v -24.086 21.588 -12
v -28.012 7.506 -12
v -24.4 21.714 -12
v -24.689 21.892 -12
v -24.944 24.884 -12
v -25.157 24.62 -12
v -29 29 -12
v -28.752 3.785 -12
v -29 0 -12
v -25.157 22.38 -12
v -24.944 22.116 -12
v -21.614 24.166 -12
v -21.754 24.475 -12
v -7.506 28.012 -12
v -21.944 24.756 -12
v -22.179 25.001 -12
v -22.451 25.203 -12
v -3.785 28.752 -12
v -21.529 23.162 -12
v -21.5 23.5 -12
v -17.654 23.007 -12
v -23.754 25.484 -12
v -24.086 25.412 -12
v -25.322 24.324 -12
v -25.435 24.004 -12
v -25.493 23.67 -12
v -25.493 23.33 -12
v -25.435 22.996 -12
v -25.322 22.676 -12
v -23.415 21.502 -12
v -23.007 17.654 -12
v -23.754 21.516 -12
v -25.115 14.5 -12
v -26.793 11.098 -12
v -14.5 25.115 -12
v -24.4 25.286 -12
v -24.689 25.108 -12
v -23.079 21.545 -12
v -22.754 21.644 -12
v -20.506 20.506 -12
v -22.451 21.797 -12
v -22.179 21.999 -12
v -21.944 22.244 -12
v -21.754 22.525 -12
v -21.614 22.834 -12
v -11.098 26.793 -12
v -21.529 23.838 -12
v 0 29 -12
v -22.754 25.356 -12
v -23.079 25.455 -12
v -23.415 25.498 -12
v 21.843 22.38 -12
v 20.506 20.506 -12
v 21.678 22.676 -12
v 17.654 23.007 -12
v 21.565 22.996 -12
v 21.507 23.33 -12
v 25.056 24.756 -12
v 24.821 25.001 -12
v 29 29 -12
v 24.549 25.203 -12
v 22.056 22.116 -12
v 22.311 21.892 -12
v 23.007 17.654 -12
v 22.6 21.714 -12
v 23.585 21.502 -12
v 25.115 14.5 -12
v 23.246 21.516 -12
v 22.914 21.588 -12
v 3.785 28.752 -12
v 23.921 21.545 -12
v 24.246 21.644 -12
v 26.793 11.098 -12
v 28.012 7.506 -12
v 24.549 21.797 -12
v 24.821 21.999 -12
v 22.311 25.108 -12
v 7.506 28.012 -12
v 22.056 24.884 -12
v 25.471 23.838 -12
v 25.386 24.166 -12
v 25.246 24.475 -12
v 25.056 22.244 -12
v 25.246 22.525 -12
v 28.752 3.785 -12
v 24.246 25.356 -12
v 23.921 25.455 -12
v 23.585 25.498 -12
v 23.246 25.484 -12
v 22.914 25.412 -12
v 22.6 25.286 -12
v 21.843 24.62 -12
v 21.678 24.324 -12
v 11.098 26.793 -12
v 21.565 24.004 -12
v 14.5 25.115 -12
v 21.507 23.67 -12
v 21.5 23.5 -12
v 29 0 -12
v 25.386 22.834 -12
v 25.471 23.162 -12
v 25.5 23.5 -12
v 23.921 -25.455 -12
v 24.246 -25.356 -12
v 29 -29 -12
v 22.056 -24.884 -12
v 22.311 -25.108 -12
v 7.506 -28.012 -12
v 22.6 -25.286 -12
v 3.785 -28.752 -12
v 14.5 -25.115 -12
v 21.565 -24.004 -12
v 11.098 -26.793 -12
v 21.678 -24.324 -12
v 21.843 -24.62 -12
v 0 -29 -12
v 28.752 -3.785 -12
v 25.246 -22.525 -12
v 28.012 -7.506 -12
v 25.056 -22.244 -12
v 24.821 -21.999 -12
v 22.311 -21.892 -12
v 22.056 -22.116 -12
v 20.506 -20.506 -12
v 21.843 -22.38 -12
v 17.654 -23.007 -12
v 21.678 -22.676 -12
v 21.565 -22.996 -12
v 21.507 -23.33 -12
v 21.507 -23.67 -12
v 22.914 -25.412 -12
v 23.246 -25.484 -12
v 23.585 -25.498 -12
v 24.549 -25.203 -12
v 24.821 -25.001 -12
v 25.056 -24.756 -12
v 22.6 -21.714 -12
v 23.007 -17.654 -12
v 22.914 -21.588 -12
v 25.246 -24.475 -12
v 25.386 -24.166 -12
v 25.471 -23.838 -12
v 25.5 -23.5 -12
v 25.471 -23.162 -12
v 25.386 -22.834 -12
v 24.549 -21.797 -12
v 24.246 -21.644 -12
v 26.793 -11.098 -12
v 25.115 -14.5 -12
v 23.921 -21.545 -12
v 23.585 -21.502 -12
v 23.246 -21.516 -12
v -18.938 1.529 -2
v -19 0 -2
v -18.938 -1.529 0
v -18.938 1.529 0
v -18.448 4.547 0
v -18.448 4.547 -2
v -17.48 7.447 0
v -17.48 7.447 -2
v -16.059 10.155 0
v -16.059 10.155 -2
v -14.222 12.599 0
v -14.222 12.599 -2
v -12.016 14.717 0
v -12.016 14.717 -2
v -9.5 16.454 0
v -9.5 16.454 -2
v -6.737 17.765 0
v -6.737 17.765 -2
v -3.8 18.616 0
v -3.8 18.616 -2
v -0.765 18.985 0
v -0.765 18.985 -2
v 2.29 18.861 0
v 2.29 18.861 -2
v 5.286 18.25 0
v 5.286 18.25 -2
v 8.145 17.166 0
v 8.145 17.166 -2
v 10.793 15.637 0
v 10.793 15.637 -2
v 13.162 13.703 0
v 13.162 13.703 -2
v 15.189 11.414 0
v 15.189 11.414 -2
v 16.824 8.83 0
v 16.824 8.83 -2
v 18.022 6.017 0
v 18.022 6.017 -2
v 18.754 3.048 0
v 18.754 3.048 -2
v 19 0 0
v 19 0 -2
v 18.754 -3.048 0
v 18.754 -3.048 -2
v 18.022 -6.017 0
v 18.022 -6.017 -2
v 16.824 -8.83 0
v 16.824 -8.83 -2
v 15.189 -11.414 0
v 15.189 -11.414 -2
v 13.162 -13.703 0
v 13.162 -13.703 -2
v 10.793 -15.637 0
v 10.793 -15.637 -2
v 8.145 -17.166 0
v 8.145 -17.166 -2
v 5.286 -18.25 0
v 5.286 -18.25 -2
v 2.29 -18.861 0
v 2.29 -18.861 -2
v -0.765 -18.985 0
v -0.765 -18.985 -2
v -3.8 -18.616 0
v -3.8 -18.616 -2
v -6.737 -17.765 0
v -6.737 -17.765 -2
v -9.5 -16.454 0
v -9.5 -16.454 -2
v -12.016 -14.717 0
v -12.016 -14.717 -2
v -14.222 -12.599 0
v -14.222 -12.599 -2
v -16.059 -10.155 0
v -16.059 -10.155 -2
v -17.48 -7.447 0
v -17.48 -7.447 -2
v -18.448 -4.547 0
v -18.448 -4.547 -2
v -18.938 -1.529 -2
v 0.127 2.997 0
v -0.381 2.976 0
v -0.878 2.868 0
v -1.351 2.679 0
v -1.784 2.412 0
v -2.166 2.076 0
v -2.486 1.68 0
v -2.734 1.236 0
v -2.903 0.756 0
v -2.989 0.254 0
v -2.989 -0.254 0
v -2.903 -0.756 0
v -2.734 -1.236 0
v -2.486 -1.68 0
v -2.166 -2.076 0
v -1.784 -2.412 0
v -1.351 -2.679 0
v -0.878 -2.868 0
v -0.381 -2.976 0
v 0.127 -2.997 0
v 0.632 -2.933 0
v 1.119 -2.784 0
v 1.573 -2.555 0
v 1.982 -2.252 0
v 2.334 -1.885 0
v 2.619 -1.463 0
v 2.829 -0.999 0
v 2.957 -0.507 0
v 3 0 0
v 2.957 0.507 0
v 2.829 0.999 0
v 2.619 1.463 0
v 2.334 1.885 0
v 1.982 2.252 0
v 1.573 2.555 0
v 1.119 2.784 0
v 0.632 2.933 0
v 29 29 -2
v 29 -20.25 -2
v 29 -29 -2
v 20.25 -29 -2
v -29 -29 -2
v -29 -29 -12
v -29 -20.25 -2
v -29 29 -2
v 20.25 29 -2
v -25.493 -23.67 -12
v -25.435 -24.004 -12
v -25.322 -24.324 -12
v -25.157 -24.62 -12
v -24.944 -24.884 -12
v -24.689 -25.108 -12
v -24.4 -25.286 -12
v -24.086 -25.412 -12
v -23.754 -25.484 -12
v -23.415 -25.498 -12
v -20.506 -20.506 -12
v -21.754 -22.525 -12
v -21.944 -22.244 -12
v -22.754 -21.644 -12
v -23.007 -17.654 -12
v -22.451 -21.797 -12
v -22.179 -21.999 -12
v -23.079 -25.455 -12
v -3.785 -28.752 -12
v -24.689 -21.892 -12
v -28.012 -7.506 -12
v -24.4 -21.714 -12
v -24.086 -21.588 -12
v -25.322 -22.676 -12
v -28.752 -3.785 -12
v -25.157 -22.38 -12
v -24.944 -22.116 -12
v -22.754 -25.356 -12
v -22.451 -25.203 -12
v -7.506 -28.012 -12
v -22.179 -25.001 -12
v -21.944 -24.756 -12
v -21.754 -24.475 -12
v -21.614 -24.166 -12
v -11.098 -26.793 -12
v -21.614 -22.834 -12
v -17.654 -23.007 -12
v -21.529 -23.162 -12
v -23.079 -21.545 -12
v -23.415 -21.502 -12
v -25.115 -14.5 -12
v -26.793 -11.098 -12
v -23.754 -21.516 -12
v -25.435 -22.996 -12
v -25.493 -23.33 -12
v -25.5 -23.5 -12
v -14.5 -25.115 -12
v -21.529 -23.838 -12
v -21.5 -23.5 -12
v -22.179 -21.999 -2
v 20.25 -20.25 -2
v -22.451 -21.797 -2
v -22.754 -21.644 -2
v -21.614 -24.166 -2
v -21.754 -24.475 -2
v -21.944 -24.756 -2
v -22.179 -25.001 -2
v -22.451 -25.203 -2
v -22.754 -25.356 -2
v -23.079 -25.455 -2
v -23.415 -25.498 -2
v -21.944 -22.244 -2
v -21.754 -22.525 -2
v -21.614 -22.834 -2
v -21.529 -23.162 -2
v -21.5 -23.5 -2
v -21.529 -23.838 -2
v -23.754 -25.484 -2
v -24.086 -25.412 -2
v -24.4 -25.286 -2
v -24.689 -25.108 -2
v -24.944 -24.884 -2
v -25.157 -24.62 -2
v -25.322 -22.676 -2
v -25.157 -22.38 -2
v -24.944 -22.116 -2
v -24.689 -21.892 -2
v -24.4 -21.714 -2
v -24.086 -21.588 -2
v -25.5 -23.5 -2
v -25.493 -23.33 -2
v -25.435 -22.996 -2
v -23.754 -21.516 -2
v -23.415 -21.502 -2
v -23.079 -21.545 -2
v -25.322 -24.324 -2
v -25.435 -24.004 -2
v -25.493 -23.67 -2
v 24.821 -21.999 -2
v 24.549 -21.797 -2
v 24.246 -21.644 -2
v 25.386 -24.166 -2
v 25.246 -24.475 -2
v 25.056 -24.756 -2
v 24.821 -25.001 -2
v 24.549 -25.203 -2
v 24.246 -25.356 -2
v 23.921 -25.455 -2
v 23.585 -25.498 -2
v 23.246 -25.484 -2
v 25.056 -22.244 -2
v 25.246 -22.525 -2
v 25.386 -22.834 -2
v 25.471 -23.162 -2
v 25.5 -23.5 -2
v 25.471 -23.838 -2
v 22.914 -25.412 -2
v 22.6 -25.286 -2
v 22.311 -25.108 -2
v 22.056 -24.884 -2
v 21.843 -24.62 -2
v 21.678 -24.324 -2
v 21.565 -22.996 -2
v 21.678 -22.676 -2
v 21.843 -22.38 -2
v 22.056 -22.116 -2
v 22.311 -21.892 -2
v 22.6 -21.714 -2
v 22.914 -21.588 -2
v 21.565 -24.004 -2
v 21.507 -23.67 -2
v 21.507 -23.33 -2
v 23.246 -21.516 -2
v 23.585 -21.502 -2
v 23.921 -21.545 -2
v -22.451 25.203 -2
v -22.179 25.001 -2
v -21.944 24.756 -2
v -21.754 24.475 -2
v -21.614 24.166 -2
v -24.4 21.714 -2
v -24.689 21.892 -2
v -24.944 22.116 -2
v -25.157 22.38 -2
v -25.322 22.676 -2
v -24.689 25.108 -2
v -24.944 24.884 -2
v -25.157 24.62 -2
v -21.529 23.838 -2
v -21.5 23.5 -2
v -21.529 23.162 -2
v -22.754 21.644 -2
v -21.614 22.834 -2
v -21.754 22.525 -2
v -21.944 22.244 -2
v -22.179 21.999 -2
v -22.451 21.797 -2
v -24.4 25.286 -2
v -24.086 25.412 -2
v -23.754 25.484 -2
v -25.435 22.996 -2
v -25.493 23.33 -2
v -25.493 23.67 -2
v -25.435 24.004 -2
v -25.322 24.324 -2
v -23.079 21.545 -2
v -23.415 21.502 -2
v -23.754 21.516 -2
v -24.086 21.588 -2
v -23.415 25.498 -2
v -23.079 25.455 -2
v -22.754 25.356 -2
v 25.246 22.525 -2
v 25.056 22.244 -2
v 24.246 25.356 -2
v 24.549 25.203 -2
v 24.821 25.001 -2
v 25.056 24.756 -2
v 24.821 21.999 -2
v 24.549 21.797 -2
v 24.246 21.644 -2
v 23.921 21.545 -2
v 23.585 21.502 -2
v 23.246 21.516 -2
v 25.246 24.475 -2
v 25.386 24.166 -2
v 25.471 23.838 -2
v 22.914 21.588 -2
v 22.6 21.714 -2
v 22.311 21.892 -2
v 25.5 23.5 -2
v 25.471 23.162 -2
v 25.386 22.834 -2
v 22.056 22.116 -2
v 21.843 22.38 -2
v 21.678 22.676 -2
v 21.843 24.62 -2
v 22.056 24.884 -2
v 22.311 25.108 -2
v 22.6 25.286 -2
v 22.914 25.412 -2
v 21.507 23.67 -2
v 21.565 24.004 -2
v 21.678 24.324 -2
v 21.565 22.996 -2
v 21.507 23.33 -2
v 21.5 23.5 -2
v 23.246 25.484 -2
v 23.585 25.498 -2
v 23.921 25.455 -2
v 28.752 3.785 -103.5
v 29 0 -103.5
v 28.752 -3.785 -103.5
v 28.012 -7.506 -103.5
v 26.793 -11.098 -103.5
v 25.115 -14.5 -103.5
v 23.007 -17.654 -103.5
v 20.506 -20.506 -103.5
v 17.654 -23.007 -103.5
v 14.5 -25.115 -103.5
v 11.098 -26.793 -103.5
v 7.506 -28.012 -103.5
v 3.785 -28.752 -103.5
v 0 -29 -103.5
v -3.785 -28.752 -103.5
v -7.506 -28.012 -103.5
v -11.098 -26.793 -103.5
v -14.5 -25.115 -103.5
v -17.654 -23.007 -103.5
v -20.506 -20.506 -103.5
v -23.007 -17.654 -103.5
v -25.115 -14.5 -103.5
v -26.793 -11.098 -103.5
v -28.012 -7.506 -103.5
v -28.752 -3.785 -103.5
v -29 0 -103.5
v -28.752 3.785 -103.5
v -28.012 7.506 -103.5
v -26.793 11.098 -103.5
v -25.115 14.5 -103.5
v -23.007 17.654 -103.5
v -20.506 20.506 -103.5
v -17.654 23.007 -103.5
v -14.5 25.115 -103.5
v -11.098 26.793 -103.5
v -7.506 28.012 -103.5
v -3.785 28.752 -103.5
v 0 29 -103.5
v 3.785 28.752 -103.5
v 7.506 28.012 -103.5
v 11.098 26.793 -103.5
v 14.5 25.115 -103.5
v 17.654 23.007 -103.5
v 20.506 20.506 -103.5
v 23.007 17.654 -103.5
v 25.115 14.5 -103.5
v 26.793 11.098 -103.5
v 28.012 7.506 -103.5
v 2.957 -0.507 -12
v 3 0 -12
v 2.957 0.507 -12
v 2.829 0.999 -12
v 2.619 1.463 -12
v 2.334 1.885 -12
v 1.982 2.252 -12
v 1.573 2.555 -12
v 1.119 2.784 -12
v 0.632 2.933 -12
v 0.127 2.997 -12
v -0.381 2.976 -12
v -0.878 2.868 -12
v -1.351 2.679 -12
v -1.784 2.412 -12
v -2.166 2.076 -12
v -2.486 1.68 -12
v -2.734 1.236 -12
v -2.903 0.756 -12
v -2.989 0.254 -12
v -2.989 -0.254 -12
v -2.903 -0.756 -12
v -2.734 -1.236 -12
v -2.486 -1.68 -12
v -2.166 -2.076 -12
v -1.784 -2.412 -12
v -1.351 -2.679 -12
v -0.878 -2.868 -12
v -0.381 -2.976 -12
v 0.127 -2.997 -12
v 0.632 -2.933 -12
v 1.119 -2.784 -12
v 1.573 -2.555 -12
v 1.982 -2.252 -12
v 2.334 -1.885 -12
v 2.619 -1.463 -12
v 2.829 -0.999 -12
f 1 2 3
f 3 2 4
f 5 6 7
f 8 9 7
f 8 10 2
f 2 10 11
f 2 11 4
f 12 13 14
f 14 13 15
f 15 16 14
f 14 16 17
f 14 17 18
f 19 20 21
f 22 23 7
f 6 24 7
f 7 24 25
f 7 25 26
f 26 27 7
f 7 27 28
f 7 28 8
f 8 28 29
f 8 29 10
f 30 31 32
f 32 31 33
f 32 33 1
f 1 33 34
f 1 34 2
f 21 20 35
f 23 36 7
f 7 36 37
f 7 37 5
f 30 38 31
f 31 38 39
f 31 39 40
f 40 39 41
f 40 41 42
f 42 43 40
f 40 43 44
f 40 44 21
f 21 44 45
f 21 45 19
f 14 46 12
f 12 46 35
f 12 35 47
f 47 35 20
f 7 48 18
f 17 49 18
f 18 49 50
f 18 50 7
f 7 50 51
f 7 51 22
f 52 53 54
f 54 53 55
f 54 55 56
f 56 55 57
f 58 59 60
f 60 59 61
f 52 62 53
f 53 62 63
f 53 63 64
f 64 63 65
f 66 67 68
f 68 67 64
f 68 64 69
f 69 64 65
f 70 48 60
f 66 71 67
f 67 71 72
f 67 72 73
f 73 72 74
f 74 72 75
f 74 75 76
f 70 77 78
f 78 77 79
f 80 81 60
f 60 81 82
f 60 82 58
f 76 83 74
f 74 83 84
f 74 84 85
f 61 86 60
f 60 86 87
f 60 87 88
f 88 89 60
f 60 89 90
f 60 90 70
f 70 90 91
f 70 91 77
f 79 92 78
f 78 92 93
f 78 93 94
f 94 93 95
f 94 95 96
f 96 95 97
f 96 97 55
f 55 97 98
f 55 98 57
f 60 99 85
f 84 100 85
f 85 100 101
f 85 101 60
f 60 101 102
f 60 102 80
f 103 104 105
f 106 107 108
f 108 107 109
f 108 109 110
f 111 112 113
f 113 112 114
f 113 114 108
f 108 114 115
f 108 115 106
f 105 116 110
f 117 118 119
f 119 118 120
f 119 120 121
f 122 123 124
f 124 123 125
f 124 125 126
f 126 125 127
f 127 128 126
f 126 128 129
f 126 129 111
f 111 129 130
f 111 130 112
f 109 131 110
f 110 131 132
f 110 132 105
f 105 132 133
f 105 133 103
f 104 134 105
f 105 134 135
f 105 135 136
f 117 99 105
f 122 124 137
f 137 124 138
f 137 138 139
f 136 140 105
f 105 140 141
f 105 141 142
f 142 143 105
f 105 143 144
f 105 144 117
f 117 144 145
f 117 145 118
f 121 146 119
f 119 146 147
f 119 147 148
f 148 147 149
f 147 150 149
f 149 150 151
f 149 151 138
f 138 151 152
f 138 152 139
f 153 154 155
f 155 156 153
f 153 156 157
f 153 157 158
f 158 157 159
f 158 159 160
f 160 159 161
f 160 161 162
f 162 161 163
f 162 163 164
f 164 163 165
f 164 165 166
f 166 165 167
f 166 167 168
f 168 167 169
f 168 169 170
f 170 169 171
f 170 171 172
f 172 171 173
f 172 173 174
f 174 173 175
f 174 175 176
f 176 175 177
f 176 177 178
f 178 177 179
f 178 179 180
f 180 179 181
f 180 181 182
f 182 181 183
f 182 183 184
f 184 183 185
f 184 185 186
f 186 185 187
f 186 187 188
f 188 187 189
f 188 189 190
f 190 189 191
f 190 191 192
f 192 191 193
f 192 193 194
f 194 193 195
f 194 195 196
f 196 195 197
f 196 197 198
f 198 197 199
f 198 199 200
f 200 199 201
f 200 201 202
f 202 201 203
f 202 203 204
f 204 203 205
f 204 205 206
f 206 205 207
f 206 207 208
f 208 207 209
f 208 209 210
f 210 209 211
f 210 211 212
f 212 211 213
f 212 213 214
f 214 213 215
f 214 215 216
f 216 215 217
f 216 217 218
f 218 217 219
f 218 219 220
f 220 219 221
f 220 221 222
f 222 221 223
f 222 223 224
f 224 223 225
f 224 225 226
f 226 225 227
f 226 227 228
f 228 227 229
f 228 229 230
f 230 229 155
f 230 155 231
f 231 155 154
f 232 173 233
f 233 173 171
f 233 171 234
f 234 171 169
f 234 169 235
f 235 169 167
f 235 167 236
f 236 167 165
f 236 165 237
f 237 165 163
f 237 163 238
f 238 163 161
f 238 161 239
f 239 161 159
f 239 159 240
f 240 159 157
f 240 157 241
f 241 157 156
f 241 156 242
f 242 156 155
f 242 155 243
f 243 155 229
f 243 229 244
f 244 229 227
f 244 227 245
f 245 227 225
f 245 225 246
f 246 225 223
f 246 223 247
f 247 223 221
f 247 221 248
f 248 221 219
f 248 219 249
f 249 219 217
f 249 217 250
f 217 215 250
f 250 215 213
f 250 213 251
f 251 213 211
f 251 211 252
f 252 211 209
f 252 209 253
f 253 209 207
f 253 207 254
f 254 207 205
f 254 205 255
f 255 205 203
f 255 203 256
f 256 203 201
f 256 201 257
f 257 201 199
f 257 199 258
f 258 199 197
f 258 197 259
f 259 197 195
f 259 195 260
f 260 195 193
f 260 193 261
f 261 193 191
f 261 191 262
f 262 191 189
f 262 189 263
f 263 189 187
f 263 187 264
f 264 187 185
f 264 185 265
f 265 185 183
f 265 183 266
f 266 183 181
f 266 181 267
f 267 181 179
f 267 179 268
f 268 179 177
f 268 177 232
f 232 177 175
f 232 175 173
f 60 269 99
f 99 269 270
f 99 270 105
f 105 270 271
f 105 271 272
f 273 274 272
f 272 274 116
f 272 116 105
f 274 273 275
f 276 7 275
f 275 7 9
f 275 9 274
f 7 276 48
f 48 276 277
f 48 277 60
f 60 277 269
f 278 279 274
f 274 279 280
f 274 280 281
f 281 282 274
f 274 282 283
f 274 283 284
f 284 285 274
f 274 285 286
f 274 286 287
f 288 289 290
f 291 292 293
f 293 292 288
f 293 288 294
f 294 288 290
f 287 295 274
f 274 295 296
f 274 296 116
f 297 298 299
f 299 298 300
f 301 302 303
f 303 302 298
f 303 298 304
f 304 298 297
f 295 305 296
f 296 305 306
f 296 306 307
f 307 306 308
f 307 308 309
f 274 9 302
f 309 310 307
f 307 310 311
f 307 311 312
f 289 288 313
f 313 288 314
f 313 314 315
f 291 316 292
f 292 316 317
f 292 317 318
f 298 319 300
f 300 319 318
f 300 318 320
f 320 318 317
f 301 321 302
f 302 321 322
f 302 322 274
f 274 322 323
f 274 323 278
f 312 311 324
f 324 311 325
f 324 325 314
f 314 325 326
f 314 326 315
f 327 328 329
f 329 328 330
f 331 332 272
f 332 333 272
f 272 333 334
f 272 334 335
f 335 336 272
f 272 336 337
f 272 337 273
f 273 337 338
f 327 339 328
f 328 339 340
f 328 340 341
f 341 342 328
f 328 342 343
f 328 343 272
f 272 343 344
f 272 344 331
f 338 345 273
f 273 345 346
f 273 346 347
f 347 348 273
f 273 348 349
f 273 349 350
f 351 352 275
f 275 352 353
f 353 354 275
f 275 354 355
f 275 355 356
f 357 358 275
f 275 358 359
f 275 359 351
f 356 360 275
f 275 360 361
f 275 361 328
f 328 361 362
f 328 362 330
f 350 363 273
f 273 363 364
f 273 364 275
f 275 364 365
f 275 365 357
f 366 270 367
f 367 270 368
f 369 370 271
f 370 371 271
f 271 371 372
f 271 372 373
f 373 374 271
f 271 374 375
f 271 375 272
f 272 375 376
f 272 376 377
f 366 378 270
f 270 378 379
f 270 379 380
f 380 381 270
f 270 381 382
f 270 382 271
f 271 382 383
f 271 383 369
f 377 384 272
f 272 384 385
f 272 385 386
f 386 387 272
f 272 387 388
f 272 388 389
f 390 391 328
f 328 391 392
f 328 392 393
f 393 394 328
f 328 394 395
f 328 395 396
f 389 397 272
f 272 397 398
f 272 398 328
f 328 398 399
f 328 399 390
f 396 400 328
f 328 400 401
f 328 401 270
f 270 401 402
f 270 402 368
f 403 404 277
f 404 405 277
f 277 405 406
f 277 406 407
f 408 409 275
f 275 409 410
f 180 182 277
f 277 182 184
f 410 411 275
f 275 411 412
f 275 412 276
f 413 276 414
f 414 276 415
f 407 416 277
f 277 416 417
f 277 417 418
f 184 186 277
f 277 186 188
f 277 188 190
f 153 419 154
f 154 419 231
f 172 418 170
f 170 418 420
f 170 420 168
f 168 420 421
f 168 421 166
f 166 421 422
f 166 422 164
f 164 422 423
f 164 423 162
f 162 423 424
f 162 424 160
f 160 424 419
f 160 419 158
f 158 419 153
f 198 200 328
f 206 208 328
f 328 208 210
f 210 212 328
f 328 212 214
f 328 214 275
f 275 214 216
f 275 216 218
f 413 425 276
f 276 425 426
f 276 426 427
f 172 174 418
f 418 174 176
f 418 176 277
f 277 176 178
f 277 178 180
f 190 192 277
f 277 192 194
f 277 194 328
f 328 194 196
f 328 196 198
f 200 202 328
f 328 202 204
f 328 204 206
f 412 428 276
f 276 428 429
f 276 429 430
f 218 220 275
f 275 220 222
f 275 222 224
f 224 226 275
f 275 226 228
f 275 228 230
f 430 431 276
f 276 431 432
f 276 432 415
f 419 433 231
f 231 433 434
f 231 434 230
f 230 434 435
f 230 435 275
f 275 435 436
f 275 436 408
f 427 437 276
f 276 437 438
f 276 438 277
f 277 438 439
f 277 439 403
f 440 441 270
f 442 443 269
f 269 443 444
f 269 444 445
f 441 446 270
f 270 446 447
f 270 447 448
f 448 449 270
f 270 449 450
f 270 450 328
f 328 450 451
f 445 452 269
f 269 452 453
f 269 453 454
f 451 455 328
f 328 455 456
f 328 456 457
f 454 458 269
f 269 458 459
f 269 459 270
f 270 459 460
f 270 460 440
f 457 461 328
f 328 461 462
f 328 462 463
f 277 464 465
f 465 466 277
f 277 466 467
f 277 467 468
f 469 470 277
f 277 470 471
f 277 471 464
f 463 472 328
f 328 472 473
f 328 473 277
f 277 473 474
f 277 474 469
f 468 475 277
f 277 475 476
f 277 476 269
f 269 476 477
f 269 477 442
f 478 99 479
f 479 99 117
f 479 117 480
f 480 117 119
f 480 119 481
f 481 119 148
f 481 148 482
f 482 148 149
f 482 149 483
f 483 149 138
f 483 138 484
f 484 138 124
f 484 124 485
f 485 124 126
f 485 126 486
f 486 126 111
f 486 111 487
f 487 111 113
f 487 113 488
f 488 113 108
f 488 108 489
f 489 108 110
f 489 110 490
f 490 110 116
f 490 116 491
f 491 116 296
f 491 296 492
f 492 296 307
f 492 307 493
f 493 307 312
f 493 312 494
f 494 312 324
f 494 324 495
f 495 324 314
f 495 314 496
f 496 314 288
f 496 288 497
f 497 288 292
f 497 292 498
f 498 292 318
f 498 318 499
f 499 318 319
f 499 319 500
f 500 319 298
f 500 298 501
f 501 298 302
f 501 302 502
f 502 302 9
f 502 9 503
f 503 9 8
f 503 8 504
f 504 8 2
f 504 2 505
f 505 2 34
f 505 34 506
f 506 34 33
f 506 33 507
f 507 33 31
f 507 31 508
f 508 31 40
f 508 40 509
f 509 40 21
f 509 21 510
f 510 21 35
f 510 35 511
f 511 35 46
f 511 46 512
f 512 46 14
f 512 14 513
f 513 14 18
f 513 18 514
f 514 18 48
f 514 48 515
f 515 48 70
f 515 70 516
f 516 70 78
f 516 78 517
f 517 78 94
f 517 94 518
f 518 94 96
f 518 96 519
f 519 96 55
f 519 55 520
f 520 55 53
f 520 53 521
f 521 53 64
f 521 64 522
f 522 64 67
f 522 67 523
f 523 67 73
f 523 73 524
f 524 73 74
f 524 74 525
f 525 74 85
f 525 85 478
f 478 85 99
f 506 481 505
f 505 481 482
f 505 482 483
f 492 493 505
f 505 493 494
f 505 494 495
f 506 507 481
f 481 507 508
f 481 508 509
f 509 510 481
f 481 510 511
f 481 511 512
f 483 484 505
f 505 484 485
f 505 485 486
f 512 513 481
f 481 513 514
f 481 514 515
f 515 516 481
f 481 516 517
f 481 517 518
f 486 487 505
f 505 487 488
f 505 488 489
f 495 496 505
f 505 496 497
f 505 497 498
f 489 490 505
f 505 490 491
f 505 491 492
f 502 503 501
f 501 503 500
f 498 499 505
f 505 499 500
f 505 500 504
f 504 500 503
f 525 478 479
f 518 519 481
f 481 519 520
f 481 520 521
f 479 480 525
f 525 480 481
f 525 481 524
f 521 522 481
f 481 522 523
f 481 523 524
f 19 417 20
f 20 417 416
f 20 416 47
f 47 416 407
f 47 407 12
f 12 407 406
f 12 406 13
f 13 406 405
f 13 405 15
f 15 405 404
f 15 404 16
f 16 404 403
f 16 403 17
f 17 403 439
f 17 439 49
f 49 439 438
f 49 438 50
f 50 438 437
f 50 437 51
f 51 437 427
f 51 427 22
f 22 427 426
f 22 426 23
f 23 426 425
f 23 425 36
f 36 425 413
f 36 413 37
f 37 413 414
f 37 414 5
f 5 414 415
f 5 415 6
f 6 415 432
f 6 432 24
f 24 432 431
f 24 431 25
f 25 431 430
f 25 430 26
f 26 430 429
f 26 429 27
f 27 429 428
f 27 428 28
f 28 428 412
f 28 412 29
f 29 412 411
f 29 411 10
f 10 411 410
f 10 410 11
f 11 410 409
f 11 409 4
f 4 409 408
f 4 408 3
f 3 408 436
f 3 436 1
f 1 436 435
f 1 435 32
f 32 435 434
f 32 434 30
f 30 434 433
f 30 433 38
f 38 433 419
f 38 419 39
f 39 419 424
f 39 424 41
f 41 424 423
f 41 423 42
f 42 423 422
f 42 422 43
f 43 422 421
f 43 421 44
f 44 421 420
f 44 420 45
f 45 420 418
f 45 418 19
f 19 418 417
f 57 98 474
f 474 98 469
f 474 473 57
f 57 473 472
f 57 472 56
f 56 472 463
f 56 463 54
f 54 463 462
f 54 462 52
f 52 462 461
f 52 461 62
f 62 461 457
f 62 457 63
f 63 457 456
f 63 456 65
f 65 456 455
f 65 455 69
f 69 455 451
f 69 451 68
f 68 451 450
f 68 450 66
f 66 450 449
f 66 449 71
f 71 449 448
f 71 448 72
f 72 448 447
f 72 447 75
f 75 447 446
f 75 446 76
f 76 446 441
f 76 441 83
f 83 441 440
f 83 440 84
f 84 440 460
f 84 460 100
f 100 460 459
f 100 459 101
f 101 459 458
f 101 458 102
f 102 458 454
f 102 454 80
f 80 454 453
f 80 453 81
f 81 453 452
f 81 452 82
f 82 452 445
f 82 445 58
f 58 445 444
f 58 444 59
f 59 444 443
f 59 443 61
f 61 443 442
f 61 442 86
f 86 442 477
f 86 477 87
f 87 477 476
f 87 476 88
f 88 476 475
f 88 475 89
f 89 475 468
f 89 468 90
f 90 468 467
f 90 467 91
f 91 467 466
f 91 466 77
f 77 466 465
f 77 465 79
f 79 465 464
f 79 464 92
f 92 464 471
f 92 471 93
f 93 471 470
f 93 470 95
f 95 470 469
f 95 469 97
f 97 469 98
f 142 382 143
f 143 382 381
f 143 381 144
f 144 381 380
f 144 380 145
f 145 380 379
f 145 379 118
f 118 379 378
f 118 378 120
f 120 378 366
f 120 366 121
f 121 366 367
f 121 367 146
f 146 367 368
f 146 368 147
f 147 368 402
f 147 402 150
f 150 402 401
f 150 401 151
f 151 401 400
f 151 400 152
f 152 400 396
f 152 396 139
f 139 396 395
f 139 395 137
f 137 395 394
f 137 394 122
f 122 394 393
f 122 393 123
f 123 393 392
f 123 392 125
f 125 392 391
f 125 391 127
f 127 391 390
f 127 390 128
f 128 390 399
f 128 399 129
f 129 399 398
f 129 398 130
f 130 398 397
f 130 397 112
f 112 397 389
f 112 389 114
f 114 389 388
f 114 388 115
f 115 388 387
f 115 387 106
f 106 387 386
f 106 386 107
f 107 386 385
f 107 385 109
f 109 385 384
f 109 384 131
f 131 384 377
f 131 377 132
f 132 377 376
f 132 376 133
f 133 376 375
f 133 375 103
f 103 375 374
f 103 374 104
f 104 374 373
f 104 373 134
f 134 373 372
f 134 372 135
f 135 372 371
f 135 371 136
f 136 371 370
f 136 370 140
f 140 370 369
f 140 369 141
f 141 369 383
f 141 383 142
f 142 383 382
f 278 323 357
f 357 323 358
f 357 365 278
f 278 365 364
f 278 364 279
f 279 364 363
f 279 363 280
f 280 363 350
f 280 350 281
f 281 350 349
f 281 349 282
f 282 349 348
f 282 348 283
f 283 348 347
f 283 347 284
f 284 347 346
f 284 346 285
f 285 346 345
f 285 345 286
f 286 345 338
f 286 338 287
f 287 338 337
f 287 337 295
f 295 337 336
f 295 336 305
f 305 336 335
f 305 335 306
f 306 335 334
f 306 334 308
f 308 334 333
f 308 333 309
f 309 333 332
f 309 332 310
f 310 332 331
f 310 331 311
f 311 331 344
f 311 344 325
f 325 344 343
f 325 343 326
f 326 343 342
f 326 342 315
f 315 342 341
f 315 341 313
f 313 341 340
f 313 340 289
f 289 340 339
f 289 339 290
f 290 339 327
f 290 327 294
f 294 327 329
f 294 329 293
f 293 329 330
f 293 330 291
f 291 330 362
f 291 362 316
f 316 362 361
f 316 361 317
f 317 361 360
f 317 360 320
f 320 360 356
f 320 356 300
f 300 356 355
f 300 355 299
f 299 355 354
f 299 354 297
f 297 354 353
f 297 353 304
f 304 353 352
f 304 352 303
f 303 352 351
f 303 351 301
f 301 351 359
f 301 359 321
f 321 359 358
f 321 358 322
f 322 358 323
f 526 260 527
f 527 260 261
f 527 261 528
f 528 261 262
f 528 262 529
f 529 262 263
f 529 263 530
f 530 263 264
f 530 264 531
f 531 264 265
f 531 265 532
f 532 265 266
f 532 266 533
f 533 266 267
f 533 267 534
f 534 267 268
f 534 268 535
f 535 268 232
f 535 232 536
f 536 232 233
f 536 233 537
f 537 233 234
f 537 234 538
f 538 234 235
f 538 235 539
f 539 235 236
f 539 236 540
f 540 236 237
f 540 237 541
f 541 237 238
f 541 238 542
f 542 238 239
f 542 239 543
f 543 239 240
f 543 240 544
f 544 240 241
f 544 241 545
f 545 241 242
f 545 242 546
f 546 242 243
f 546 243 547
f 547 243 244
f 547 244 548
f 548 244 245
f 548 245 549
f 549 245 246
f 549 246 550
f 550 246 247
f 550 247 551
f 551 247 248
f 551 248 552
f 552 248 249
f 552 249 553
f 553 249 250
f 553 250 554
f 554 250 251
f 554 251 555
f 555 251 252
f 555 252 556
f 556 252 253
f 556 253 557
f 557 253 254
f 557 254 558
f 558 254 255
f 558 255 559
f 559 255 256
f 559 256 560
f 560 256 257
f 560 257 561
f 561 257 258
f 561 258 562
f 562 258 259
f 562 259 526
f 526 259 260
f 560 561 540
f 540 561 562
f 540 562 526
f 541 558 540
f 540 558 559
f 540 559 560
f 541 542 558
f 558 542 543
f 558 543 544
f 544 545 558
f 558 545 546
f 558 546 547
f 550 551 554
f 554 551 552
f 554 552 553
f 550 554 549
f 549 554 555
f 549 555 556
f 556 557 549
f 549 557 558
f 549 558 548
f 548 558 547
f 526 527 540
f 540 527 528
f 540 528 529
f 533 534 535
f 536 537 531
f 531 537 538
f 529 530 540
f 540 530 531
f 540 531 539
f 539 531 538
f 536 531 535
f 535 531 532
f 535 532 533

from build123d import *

# Parameters (mm, degrees)
SKETCH1_R           = 19
BOSS_EXTRUDE1_DEPTH = 2
SKETCH3_W           = 58
SKETCH3_H           = 58
BOSS_EXTRUDE2_DEPTH = 10
SKETCH4_R           = 29
BOSS_EXTRUDE3_DEPTH = 91.5
SKETCH5_R           = 2
CUT_EXTRUDE1_DEPTH  = 10
SKETCH6_R           = 3
CUT_EXTRUDE2_DEPTH  = 12


with BuildPart() as part:
    # Sketch1 → Boss-Extrude1 (new body)
    with BuildSketch(Plane.XY):
        Circle(SKETCH1_R)
    extrude(amount=-BOSS_EXTRUDE1_DEPTH)

    # Sketch3 → Boss-Extrude2 (add)
    with BuildSketch(Plane(origin=(0, 0, -2), x_dir=(-1, 0, 0), z_dir=(0, 0, -1))):
        Rectangle(SKETCH3_W, SKETCH3_H)
    extrude(amount=BOSS_EXTRUDE2_DEPTH)

    # Sketch4 → Boss-Extrude3 (add)
    with BuildSketch(Plane(origin=(0, 0, -12), x_dir=(-1, 0, 0), z_dir=(0, 0, -1))):
        Circle(SKETCH4_R)
    extrude(amount=BOSS_EXTRUDE3_DEPTH)

    # Sketch5 → Cut-Extrude1 (cut)
    with BuildSketch(Plane.XY.offset(-2)):
        with Locations((-23.5, 23.5)):
            Circle(SKETCH5_R)
        with Locations((23.5, 23.5)):
            Circle(SKETCH5_R)
        with Locations((23.5, -23.5)):
            Circle(SKETCH5_R)
        with Locations((-23.5, -23.5)):
            Circle(SKETCH5_R)
    extrude(amount=-CUT_EXTRUDE1_DEPTH, mode=Mode.SUBTRACT)

    # Sketch6 → Cut-Extrude2 (cut)
    with BuildSketch(Plane.XY):
        Circle(SKETCH6_R)
    extrude(amount=-CUT_EXTRUDE2_DEPTH, mode=Mode.SUBTRACT)


solid = part.part
